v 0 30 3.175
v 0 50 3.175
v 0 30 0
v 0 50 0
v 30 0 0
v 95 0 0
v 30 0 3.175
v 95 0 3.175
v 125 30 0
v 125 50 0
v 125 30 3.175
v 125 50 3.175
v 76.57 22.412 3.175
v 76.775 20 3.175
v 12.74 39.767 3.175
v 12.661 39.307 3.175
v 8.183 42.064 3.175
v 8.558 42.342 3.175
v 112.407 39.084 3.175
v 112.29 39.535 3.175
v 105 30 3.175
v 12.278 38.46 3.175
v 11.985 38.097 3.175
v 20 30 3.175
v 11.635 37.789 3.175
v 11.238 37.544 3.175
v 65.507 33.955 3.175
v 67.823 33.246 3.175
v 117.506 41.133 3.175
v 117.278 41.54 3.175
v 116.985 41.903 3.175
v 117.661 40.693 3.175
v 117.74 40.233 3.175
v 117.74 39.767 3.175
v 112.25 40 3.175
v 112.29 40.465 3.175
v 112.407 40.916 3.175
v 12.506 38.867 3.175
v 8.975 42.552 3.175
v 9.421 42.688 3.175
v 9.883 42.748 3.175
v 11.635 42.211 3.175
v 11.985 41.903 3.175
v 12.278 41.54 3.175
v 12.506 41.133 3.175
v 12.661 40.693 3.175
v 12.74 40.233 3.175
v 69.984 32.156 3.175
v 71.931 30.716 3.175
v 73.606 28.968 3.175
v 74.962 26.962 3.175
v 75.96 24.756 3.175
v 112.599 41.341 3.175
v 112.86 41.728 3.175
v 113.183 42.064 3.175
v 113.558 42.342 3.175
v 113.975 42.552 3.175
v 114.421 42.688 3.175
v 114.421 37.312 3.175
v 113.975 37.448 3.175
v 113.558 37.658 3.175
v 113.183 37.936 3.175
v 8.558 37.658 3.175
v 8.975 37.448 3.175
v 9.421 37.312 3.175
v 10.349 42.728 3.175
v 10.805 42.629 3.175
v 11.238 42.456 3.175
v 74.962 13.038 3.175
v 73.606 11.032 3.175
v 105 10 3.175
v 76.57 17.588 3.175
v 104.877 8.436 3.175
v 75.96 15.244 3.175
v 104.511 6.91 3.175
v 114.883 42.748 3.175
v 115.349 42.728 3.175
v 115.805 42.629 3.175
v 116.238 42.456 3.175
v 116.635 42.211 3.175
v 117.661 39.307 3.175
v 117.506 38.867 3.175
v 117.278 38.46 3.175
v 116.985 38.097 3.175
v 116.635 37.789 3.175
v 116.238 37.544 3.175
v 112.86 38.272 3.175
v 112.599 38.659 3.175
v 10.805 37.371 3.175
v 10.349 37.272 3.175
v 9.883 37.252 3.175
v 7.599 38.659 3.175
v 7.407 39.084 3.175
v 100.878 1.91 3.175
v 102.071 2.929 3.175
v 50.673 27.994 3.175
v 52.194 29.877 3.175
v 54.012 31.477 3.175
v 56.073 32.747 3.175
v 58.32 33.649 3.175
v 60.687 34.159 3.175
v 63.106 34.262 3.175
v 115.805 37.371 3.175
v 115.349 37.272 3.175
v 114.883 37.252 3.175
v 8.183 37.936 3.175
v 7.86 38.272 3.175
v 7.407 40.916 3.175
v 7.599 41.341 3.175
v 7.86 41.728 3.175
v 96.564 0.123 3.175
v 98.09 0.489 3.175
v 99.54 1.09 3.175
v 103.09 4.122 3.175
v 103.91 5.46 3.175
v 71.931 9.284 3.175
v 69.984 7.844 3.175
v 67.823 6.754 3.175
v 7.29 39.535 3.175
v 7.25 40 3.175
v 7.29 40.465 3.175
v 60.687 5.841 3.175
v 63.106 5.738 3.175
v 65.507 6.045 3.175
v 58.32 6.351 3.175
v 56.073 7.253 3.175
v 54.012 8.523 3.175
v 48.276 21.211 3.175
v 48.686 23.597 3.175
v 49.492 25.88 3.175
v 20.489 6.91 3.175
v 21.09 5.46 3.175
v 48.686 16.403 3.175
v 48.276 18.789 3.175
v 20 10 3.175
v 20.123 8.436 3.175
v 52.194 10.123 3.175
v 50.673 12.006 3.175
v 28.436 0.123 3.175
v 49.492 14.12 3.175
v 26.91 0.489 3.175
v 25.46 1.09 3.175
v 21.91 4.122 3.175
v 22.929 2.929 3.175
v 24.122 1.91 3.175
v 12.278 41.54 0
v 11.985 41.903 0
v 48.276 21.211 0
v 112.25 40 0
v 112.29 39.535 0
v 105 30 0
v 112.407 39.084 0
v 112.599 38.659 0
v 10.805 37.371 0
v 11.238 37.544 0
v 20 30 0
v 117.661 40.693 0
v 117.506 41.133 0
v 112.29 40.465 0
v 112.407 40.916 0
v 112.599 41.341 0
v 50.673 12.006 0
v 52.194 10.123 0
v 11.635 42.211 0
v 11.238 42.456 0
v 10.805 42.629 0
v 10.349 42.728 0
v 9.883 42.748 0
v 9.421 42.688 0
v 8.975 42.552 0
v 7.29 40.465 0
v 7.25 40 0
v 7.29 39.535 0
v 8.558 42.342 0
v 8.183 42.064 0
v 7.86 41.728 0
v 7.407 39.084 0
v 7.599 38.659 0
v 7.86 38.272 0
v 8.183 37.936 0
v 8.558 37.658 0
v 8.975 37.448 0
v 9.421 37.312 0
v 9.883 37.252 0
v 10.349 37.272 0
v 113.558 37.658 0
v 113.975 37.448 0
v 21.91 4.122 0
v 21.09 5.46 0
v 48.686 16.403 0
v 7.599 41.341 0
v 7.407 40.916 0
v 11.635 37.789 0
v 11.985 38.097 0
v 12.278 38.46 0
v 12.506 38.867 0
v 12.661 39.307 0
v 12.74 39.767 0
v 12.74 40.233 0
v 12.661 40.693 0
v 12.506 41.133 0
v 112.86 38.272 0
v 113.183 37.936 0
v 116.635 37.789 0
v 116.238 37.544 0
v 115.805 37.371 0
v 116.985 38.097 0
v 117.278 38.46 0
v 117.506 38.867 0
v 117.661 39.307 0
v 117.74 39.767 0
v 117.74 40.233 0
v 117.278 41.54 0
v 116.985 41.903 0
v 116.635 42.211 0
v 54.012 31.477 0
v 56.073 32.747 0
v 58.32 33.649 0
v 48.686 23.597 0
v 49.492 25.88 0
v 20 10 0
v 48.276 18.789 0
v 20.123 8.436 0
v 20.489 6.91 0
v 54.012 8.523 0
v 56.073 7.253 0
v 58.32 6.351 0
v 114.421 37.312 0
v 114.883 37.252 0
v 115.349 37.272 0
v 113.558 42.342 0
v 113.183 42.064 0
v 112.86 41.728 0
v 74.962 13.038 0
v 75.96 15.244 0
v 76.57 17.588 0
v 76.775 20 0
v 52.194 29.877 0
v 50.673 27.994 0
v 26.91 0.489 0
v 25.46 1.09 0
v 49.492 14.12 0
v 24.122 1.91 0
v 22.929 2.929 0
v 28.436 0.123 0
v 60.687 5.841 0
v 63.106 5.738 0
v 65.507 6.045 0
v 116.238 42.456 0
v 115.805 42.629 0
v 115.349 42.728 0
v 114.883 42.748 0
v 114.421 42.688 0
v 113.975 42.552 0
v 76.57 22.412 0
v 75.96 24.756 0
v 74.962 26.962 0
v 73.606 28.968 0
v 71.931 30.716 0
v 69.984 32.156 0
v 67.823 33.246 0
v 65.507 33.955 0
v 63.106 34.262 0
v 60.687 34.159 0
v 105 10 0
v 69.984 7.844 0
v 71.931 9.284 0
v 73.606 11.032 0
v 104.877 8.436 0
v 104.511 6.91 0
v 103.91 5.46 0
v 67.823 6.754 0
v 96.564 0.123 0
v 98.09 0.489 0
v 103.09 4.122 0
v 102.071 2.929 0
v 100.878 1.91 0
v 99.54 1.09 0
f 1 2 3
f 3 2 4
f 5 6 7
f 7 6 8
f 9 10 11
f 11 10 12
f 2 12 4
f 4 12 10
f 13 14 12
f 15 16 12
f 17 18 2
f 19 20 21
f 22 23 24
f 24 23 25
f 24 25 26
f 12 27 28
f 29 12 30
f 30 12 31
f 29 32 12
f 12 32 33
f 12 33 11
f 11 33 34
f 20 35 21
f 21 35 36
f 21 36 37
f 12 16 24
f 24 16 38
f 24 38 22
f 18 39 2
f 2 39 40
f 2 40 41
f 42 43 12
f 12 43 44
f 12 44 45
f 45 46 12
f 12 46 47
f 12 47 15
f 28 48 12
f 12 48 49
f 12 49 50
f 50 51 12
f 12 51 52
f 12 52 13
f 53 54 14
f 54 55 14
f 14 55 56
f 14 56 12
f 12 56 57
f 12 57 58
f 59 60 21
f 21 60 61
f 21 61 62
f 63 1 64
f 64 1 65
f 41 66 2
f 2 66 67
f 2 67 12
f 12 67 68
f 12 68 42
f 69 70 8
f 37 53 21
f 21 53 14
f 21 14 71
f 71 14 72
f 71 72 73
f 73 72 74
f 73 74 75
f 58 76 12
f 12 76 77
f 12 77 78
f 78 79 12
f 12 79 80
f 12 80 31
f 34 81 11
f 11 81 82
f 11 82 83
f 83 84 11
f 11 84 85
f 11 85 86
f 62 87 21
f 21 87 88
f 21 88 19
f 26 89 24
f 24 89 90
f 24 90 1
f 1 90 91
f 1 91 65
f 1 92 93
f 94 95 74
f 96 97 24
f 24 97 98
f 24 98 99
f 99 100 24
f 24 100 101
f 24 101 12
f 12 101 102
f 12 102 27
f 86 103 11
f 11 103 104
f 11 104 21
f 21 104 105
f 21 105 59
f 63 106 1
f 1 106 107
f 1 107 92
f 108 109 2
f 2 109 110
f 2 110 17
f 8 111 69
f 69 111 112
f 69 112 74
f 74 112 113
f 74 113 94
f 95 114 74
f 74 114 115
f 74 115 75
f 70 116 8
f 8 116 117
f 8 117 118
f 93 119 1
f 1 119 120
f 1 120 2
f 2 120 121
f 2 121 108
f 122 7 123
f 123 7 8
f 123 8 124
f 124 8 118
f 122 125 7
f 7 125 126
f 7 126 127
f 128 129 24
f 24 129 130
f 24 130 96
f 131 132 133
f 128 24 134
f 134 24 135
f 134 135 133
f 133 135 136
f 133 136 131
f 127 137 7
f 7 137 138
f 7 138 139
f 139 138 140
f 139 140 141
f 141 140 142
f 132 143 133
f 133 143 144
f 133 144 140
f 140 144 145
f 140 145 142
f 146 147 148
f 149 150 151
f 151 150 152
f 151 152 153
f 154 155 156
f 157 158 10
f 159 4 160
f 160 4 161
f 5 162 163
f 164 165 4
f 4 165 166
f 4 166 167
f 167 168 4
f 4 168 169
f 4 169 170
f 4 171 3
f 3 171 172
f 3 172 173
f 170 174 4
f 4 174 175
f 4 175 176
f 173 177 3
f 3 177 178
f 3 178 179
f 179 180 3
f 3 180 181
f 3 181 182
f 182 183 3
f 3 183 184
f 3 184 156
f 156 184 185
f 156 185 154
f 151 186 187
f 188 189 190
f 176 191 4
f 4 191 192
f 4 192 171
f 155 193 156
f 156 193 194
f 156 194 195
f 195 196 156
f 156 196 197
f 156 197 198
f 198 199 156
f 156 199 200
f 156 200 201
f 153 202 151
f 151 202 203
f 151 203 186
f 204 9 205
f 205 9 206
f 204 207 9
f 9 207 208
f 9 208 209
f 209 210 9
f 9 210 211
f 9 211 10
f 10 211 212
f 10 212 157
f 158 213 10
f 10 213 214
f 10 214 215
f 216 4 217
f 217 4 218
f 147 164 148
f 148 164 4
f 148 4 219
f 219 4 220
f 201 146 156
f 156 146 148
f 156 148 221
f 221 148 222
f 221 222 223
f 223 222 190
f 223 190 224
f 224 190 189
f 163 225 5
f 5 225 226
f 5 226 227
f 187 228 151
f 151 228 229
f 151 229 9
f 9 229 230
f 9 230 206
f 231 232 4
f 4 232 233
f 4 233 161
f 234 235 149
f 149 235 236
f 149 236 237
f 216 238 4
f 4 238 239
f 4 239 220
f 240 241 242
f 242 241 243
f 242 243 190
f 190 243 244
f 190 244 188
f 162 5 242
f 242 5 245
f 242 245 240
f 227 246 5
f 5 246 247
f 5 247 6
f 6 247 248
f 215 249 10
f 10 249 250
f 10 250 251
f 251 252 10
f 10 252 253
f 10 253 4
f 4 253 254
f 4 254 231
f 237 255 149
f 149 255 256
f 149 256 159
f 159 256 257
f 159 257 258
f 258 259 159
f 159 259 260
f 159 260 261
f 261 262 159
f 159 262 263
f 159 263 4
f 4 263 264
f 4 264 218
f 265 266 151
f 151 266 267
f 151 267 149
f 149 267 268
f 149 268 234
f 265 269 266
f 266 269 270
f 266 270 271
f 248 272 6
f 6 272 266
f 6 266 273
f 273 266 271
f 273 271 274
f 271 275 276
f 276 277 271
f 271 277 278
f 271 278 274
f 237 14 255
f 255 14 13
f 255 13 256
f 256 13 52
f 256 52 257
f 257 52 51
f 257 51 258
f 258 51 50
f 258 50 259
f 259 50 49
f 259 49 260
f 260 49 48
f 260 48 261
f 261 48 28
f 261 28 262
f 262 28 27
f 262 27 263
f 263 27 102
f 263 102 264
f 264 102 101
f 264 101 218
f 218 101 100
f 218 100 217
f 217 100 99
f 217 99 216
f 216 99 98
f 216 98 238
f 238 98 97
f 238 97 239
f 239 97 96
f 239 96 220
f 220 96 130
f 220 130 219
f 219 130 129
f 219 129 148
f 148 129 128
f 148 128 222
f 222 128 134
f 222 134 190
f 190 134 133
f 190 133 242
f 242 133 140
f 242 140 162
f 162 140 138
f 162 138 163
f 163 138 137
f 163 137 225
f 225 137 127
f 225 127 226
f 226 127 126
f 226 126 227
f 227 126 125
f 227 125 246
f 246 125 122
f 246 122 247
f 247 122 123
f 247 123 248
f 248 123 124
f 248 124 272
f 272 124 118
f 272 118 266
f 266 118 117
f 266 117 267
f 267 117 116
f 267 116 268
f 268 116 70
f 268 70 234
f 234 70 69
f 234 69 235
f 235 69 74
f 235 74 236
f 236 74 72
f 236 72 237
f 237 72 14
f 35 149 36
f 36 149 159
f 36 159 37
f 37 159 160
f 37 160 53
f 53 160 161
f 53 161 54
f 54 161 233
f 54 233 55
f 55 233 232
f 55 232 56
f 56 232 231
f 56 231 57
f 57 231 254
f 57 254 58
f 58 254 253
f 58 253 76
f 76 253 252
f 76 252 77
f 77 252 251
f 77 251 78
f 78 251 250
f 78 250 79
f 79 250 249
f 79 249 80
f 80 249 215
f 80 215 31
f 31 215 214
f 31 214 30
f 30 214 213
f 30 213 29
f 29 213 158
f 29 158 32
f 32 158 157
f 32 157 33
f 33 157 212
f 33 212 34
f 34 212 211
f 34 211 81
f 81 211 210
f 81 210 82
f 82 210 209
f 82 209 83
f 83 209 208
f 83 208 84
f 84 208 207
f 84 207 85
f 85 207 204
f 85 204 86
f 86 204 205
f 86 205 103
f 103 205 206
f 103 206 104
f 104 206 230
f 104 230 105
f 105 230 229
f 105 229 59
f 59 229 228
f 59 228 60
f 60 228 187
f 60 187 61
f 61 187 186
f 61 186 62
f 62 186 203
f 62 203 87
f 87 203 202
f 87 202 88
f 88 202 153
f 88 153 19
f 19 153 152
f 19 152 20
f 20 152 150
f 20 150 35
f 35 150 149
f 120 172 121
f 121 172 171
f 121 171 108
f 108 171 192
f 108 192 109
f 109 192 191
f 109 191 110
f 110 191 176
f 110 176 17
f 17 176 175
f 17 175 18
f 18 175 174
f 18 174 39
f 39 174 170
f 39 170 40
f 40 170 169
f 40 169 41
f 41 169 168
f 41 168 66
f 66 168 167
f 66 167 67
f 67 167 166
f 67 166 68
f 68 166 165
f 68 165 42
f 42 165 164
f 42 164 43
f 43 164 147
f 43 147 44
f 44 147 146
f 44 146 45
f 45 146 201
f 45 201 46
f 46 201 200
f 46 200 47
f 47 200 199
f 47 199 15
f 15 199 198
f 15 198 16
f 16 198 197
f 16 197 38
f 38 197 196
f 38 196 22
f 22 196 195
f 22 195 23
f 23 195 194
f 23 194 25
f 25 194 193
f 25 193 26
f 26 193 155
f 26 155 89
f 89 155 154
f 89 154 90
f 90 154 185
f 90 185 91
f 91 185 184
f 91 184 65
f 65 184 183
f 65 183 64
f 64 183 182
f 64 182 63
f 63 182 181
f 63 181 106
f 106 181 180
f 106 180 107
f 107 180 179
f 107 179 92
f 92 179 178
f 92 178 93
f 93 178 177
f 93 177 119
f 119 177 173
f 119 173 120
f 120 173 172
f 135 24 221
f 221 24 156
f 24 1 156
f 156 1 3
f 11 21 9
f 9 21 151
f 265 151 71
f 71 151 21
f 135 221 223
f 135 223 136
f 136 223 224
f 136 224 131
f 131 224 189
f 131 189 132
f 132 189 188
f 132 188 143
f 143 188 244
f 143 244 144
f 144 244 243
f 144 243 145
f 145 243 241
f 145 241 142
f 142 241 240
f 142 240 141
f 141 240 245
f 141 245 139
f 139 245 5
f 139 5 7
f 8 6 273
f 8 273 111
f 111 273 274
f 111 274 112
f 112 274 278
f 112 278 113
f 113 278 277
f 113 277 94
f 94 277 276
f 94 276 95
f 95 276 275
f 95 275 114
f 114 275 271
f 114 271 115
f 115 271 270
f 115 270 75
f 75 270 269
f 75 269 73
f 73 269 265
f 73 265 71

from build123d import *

# Parameters (mm, degrees)
SKETCH1_W           = 125
SKETCH1_H           = 50
BOSS_EXTRUDE1_DEPTH = 3.175
SKETCH2_R           = 14.275
CUT_EXTRUDE1_DEPTH  = 4.175
SKETCH6_R           = 2.75
SKETCH6_W           = 20
SKETCH6_H           = 30
CUT_EXTRUDE6_DEPTH  = 4.175
FILLET1_R           = 10


with BuildPart() as part:
    # Sketch1 → Boss-Extrude1 (new body)
    with BuildSketch(Plane.XY):
        with Locations((62.5, 25)):
            Rectangle(SKETCH1_W, SKETCH1_H)
    extrude(amount=BOSS_EXTRUDE1_DEPTH)

    # Sketch2 → Cut-Extrude1 (cut, through all)
    with BuildSketch(Plane.XY.offset(3.175)):
        with Locations((62.5, 20)):
            Circle(SKETCH2_R)
    extrude(amount=-CUT_EXTRUDE1_DEPTH, mode=Mode.SUBTRACT)

    # Sketch6 → Cut-Extrude6 (cut, through all)
    with BuildSketch(Plane(origin=(0, 0, 0), x_dir=(-1, 0, 0), z_dir=(0, 0, -1))):
        with Locations((-115, 40)):
            Circle(SKETCH6_R)
        with Locations((-10, 40)):
            Circle(SKETCH6_R)
        with Locations((-115, 15)):
            Rectangle(SKETCH6_W, SKETCH6_H)
        with Locations((-10, 15)):
            Rectangle(SKETCH6_W, SKETCH6_H)
    extrude(amount=-CUT_EXTRUDE6_DEPTH, mode=Mode.SUBTRACT)

    # Fillet1
    fillet1_edges = [part.edges().sort_by_distance(p)[0] for p in [
        (105, 0, 1.5875),
        (20, 0, 1.5875),
    ]]
    fillet(fillet1_edges, radius=FILLET1_R)


solid = part.part
